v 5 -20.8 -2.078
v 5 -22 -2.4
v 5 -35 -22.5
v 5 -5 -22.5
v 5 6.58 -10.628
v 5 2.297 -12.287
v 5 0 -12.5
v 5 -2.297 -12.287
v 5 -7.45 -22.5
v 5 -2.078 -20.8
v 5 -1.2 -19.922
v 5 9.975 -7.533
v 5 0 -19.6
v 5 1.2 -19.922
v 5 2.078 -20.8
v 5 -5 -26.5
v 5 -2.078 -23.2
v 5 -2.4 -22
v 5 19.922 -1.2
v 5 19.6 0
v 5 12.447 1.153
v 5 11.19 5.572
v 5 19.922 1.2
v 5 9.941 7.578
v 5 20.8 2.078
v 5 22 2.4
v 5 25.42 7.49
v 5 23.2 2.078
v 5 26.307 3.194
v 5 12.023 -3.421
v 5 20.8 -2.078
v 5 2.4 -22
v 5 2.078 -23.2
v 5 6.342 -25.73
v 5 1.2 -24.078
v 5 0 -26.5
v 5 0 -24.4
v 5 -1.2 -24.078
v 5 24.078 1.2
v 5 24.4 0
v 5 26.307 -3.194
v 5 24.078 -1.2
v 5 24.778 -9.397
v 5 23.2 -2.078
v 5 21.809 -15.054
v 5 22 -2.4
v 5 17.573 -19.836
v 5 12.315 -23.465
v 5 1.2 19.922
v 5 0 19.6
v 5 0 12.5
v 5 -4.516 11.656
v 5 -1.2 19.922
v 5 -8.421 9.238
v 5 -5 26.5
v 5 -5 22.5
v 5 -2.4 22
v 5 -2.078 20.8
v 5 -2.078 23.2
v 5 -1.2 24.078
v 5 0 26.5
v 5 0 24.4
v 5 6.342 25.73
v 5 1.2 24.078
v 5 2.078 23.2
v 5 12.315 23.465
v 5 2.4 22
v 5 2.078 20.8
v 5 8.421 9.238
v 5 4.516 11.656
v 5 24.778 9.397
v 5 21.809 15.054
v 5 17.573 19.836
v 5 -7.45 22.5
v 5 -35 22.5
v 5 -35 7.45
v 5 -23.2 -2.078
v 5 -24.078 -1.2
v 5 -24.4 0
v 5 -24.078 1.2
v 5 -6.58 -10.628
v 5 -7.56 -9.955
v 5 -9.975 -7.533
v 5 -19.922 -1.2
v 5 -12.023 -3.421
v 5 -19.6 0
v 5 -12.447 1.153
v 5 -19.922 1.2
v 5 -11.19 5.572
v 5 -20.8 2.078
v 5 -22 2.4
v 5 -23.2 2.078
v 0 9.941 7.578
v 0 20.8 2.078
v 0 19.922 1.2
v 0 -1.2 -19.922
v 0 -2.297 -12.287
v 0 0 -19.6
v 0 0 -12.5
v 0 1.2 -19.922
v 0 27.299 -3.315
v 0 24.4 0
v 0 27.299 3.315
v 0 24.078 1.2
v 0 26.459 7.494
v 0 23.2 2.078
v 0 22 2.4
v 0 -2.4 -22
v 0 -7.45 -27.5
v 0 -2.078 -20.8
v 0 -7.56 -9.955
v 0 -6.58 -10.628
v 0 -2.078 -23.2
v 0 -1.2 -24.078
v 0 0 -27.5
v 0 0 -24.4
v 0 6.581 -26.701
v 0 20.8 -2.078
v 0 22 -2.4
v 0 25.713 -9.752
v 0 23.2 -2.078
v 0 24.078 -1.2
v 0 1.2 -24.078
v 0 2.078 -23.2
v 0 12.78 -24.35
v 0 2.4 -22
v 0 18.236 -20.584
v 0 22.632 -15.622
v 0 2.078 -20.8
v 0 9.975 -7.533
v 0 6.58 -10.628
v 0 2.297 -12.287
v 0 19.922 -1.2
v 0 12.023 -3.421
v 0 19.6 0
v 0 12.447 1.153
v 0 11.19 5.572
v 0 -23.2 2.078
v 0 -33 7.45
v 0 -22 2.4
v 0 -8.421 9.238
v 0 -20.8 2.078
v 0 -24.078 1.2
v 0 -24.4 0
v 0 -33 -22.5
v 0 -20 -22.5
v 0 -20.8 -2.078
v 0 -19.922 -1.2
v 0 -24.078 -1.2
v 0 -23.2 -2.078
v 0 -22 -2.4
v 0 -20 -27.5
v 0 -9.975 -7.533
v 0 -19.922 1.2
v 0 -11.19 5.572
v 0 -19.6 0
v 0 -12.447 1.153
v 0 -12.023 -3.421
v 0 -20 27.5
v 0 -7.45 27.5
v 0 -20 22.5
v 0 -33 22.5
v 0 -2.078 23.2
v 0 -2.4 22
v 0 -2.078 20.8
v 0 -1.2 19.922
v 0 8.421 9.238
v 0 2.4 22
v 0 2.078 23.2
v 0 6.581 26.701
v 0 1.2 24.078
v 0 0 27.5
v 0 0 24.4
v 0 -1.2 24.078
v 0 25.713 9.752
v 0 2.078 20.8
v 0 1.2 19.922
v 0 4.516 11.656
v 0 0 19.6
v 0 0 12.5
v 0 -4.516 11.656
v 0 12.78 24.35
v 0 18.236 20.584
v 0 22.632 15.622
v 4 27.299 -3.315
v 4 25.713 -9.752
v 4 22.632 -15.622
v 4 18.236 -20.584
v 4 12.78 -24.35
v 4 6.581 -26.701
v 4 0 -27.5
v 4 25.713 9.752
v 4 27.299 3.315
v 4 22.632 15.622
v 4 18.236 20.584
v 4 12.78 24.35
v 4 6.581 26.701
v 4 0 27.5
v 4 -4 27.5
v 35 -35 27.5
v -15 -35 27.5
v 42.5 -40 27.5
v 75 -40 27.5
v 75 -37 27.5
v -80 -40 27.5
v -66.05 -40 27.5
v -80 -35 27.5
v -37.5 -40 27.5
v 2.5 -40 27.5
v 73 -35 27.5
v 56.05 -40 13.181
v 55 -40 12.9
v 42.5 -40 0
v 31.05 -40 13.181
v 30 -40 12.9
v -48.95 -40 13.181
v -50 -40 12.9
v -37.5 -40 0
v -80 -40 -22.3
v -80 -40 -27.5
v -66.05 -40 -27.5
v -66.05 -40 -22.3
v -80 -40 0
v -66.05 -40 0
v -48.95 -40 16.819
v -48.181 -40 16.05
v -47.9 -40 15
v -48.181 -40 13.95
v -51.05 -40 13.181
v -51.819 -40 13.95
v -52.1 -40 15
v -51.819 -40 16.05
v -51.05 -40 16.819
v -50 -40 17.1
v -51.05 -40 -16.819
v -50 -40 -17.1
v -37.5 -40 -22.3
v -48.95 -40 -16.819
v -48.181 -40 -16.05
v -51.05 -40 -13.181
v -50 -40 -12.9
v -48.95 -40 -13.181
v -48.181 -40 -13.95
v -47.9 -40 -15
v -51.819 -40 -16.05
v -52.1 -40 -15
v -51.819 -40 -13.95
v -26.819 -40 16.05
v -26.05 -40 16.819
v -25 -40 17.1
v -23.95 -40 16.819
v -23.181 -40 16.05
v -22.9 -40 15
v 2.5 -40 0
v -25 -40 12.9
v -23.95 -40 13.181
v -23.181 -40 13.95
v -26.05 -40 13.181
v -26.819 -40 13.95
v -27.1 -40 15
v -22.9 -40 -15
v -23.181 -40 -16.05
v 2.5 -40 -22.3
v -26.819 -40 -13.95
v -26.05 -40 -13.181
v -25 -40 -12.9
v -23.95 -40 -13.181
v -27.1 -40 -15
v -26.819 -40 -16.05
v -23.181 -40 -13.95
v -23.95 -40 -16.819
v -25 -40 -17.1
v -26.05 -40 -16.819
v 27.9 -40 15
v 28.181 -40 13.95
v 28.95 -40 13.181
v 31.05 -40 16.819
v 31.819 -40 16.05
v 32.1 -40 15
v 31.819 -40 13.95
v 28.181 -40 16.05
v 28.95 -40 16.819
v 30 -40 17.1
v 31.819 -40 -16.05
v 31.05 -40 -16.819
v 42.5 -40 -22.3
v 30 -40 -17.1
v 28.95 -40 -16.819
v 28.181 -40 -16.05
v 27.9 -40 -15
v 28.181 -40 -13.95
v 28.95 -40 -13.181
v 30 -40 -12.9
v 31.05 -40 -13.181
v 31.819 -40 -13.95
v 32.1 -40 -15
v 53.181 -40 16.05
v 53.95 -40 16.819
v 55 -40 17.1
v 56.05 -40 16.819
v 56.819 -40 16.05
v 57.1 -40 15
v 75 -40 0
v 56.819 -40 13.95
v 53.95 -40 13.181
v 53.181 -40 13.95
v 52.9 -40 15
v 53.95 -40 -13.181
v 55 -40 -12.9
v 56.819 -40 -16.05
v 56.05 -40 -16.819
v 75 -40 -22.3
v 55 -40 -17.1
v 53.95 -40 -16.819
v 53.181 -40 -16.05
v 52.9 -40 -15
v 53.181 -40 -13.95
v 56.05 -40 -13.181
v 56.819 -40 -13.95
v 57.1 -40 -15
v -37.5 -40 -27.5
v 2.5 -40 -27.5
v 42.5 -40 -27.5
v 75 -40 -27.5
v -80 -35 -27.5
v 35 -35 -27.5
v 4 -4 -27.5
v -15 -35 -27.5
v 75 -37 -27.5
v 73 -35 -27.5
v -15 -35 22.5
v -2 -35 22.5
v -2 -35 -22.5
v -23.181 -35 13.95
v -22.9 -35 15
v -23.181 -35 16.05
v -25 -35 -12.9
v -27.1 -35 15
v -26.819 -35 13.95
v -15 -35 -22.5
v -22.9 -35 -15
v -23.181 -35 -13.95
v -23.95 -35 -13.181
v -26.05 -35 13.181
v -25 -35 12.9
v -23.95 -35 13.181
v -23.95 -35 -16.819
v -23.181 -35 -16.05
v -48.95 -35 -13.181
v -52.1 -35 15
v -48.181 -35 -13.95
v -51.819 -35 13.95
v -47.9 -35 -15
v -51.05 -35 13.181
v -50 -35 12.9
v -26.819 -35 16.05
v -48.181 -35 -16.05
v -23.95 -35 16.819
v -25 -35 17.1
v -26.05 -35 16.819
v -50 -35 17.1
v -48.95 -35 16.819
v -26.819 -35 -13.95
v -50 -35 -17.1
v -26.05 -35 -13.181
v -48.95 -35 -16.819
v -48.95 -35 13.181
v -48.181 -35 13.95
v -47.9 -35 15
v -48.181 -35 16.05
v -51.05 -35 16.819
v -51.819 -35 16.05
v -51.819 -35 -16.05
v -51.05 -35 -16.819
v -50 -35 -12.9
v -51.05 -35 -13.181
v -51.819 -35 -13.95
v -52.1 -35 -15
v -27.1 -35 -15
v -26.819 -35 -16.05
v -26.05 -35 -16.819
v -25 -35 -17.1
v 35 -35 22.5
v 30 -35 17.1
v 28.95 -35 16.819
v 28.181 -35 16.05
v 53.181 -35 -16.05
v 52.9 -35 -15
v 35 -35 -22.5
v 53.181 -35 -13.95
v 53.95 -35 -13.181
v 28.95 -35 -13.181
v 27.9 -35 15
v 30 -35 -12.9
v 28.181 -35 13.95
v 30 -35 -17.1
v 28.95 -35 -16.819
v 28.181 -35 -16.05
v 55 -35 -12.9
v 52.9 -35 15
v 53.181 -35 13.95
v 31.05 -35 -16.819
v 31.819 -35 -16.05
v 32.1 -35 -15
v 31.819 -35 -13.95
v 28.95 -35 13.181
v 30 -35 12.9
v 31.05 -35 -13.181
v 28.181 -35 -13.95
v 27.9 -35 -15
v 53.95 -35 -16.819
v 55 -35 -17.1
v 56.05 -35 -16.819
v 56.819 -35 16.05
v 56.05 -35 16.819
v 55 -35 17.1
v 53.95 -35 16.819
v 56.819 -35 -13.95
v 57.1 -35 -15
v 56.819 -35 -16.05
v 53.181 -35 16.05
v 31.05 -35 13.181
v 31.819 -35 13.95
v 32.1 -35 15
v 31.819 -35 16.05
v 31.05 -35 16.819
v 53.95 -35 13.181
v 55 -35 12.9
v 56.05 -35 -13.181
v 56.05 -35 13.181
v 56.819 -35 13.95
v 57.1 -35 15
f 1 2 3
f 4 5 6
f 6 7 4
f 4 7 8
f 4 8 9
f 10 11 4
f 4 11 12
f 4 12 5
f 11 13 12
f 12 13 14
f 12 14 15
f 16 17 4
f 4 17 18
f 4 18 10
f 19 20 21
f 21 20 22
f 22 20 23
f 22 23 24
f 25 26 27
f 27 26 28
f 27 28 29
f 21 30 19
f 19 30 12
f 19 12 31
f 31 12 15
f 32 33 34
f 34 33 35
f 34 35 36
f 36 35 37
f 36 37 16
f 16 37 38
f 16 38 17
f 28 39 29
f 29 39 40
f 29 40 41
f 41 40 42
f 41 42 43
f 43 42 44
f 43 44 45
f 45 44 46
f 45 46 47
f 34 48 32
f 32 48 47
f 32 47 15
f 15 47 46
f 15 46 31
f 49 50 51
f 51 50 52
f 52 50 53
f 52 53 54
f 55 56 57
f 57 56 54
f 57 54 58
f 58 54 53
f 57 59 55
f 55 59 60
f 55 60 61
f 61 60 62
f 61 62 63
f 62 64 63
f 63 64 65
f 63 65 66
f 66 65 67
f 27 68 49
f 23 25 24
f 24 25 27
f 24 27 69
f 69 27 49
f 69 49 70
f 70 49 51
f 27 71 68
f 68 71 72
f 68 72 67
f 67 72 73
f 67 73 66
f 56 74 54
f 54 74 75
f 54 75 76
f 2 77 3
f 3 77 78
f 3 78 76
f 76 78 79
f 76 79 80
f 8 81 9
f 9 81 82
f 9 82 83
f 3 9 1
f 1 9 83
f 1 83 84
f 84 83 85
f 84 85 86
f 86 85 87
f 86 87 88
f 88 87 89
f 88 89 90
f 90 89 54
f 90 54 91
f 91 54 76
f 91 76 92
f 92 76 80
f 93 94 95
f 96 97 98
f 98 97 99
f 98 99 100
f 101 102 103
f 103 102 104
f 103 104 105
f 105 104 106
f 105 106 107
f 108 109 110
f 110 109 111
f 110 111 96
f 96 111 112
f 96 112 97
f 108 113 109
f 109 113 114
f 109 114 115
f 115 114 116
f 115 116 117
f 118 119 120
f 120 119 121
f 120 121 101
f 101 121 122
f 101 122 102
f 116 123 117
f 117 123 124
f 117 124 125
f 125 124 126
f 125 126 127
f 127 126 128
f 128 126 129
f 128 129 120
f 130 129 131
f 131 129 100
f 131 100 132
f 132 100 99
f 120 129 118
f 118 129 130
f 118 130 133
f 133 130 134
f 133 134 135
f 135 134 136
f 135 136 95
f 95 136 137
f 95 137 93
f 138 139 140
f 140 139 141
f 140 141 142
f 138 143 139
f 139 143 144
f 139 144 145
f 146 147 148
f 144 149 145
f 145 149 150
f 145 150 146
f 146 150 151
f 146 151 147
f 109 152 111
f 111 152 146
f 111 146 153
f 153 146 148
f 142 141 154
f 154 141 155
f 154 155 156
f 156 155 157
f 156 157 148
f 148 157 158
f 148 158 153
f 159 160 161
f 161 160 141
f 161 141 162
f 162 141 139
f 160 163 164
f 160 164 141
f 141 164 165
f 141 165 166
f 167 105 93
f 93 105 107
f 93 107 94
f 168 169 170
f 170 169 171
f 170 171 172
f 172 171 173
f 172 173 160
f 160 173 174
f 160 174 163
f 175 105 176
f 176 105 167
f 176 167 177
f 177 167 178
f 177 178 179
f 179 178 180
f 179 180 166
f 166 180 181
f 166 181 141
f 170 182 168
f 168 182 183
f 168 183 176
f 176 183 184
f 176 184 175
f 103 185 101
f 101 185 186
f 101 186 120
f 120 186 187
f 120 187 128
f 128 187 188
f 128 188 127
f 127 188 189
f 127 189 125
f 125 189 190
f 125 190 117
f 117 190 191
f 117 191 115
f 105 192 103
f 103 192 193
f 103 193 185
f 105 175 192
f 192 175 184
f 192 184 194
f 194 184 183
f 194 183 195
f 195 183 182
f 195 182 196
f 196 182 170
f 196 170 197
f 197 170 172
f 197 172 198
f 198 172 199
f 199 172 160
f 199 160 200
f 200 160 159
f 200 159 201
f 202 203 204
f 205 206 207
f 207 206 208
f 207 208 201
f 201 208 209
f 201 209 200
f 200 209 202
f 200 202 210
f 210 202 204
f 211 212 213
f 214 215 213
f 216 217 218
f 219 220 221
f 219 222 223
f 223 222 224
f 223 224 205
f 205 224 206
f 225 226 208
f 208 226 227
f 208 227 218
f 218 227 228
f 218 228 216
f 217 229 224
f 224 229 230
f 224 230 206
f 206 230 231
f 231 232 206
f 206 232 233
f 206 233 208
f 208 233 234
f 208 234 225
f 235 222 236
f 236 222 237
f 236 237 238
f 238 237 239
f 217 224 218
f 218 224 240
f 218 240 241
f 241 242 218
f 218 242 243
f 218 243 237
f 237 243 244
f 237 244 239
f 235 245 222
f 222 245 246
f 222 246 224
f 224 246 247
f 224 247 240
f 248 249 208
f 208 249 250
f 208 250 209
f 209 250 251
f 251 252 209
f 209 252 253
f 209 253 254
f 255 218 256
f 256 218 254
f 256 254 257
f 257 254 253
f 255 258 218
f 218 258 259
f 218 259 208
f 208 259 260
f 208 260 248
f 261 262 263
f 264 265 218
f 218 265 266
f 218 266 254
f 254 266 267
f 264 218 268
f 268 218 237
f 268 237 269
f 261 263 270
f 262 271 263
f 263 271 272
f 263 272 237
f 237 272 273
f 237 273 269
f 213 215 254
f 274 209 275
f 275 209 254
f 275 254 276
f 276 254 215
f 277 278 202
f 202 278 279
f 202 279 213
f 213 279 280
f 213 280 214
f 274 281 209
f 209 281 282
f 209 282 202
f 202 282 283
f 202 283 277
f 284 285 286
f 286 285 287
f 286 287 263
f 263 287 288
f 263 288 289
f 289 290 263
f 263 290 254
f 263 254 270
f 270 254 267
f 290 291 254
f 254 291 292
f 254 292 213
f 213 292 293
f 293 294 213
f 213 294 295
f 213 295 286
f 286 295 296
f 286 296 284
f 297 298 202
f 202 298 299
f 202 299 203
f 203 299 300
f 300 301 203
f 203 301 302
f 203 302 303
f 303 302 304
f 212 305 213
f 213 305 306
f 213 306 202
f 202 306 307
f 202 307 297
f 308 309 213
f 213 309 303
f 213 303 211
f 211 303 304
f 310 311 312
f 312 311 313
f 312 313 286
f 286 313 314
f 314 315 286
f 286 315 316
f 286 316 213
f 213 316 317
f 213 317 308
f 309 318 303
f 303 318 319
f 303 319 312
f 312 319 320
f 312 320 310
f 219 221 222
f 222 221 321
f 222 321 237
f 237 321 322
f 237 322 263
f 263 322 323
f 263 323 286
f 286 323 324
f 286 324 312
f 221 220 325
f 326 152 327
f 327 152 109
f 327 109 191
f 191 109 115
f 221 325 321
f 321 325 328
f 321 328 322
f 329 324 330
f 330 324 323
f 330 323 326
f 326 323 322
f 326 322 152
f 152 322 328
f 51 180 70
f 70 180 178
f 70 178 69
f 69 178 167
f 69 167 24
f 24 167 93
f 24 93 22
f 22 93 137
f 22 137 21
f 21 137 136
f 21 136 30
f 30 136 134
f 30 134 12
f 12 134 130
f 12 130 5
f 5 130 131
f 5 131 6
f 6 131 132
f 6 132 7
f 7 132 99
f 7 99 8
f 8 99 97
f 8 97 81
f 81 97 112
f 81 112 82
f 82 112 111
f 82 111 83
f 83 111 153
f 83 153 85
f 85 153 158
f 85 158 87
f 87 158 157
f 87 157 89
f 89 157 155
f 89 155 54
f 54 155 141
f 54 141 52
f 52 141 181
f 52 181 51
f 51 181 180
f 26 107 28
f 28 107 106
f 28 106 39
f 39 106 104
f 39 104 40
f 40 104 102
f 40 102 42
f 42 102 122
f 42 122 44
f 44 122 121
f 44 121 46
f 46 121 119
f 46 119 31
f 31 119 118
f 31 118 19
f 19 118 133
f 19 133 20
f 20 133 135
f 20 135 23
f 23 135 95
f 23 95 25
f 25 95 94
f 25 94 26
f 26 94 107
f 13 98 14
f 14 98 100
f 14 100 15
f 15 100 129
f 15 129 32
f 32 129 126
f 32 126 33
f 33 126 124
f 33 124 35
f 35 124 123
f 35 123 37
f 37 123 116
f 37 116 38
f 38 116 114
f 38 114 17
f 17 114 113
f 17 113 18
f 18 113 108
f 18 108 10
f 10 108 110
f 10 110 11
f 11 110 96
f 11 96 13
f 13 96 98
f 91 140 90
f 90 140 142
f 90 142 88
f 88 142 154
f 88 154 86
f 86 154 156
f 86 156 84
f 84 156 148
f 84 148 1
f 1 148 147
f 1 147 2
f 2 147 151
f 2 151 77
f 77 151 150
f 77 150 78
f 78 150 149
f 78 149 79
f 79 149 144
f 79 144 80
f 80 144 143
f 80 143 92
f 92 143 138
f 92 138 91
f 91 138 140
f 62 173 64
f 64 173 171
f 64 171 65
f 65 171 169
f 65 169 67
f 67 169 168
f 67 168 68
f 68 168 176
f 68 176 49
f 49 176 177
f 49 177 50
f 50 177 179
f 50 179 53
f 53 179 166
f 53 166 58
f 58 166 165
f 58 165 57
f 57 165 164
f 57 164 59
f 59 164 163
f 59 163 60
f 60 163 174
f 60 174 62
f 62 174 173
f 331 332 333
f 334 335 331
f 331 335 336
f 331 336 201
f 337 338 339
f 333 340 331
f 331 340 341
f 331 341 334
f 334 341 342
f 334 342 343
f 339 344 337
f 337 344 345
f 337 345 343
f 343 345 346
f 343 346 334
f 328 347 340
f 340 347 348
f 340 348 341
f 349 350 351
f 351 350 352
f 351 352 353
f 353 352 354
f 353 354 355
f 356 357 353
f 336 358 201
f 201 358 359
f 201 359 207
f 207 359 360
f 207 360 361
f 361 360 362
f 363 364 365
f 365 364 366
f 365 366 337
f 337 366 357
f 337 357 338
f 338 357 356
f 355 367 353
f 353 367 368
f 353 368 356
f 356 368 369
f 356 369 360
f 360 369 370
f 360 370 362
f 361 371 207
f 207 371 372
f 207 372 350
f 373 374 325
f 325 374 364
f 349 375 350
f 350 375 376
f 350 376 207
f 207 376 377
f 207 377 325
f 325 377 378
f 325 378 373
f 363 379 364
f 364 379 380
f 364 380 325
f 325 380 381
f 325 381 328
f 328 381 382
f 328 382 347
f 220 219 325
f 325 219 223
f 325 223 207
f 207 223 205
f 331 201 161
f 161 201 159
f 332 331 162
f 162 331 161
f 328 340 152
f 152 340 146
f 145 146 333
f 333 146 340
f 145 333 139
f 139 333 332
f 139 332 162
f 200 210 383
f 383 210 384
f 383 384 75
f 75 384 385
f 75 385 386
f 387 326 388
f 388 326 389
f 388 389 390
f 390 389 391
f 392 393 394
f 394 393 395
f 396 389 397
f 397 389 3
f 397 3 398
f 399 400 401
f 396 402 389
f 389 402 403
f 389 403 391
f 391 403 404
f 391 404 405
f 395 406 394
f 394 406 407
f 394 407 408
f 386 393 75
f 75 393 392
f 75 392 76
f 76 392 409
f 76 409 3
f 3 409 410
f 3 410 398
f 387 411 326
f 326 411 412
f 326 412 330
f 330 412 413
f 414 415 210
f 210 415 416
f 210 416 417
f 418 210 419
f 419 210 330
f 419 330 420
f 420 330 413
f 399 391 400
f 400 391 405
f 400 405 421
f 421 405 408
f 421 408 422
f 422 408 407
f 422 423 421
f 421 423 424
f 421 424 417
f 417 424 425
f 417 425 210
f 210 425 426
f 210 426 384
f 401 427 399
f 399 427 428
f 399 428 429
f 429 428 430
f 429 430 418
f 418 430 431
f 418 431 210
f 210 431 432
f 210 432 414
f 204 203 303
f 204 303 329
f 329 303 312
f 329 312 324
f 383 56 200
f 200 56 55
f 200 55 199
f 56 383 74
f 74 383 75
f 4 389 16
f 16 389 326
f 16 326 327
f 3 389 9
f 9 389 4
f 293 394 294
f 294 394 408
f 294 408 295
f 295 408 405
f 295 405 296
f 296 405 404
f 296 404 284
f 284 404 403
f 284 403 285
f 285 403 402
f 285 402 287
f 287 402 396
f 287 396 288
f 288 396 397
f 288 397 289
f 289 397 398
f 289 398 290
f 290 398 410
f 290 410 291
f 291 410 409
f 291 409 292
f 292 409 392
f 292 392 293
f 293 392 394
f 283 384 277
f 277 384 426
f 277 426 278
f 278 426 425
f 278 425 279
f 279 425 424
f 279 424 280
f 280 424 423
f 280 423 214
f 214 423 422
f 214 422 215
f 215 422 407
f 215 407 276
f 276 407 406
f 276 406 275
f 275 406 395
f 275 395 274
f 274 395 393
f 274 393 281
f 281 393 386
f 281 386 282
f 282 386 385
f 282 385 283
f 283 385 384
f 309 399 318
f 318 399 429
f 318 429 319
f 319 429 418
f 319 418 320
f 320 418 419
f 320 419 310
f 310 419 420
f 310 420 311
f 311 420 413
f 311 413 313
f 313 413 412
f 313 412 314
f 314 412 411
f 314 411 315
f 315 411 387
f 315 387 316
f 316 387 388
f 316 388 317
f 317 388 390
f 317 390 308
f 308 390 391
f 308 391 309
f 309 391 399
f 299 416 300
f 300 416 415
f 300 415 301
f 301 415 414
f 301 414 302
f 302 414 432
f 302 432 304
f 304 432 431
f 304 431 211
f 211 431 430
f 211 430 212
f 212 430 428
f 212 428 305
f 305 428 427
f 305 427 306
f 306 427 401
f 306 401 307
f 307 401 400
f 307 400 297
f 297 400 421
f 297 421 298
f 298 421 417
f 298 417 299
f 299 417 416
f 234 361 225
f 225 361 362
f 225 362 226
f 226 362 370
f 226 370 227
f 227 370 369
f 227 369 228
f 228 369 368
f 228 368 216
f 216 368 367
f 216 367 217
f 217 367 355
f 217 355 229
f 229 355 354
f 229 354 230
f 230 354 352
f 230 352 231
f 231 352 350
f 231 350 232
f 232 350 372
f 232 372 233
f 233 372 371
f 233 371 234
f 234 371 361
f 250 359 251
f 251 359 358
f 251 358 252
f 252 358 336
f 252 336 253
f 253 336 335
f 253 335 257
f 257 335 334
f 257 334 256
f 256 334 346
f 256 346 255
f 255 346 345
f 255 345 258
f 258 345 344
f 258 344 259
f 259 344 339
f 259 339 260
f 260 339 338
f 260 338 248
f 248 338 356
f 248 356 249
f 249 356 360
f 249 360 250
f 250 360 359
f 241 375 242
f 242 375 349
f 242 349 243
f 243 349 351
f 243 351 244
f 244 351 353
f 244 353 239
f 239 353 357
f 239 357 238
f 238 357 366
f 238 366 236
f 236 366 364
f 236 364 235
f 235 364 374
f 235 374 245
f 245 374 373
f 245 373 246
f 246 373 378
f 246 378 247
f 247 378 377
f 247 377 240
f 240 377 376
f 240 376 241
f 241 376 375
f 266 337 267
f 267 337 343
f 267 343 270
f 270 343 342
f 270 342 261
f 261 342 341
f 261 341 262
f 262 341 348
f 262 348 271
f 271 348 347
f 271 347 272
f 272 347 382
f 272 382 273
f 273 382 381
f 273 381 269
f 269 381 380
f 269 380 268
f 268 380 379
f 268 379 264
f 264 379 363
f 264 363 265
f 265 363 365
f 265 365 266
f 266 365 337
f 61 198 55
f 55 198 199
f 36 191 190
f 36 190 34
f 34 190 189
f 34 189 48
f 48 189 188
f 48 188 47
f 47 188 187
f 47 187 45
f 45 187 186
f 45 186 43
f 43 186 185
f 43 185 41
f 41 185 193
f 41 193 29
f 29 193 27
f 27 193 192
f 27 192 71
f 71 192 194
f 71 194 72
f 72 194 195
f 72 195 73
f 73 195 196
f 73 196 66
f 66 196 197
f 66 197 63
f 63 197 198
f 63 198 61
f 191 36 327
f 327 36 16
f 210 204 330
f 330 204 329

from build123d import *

# Parameters (mm, degrees)
SKETCH_1_R          = 12.5
SKETCH_1_R_2        = 2.4
EXTRUDE_1_DEPTH     = 5
SKETCH_2_W          = 55
SKETCH_2_H          = 5
EXTRUDE_2_DEPTH     = 80
RIB_1_REACH         = 105.712
SKETCH_3_WALL_W     = 230.637888562
SKETCH_3_WALL_H     = 5
CHAMFER_2_SIZE      = 2
SKETCH_4_W          = 55
SKETCH_4_H          = 5
EXTRUDE_3_DEPTH     = 70
RIB_6_REACH         = 105.712
SKETCH_5_WALL_W     = 251.851091998
SKETCH_5_WALL_H     = 5
CUT_EXTRUDE_1_REACH = 107.178
SKETCH_6_R          = 2.1
CHAMFER_3_SIZE      = 1
CHAMFER_4_SIZE      = 2


with BuildPart() as part:
    # 草图1 → 凸台-拉伸1 (new body)
    with BuildSketch(Plane(origin=(0, 0, 0), x_dir=(0, 0, -1), z_dir=(1, 0, 0))):
        with BuildLine():
            Line((-27.5, 0), (-27.5, -40))
            Line((-27.5, -40), (27.5, -40))
            Line((27.5, -40), (27.5, 0))
            ThreePointArc((27.5, 0), (0, 27.5), (-27.5, 0))
        make_face()
        Circle(SKETCH_1_R, mode=Mode.SUBTRACT)
        with Locations((0, 22)):
            Circle(SKETCH_1_R_2, mode=Mode.SUBTRACT)
        with Locations((22, 0)):
            Circle(SKETCH_1_R_2, mode=Mode.SUBTRACT)
        with Locations((0, -22)):
            Circle(SKETCH_1_R_2, mode=Mode.SUBTRACT)
        with Locations((-22, 0)):
            Circle(SKETCH_1_R_2, mode=Mode.SUBTRACT)
    extrude(amount=EXTRUDE_1_DEPTH)

    # 草图2 → 凸台-拉伸2 (add)
    with BuildSketch(Plane.ZY):
        with Locations((0, -37.5)):
            Rectangle(SKETCH_2_W, SKETCH_2_H)
    extrude(amount=EXTRUDE_2_DEPTH)

    # 草图3 wall → 筋1 (add, up to next)
    with BuildSketch(Plane(origin=(-7.5, -27.5, 25), x_dir=(0.707106781187, 0.707106781187, 0), z_dir=(-0.707106781187, 0.707106781187, 0)), mode=Mode.PRIVATE) as rib_1_sk1:
        Rectangle(SKETCH_3_WALL_W, SKETCH_3_WALL_H)
    rib_1_tool1 = extrude(rib_1_sk1.sketch, amount=-RIB_1_REACH, mode=Mode.PRIVATE) - part.part
    rib_1 = rib_1_tool1.solids().sort_by_distance((-7.5, -27.5, 25))[0]
    add(rib_1)

    # 镜向1: 筋1 across plane
    add(rib_1.mirror(Plane.XY))

    # 倒角2
    chamfer_2_edges = [part.edges().sort_by_distance(p)[0] for p in [
        (0, -35, 0),
    ]]
    chamfer(chamfer_2_edges, length=CHAMFER_2_SIZE)

    # 草图4 → 凸台-拉伸3 (add)
    with BuildSketch(Plane(origin=(5, 0, 0), x_dir=(0, 0, -1), z_dir=(1, 0, 0))):
        with Locations((0, -37.5)):
            Rectangle(SKETCH_4_W, SKETCH_4_H)
    extrude(amount=EXTRUDE_3_DEPTH)

    # 草图5 wall → 筋6 (add, up to next)
    with BuildSketch(Plane(origin=(20, -20, 25), x_dir=(-0.707106781187, 0.707106781187, 0), z_dir=(-0.707106781187, -0.707106781187, 0)), mode=Mode.PRIVATE) as rib_6_sk1:
        Rectangle(SKETCH_5_WALL_W, SKETCH_5_WALL_H)
    rib_6_tool1 = extrude(rib_6_sk1.sketch, amount=RIB_6_REACH, mode=Mode.PRIVATE) - part.part
    rib_6 = rib_6_tool1.solids().sort_by_distance((20, -20, 25))[0]
    add(rib_6)

    # 镜向2: 筋6 across plane
    add(rib_6.mirror(Plane.XY))

    # 草图6 → 切除-拉伸1 (cut, up to next)
    with BuildSketch(Plane(origin=(0, -35, 0), x_dir=(1, 0, 0), z_dir=(0, 1, 0)), mode=Mode.PRIVATE) as cut_extrude_1_sk1:
        with Locations(Location((30, 15, 0), (0, 0, 270))):
            Circle(SKETCH_6_R)
    cut_extrude_1_tool1 = extrude(cut_extrude_1_sk1.sketch, amount=-CUT_EXTRUDE_1_REACH, mode=Mode.PRIVATE) & part.part
    # 草图6 → 切除-拉伸1 (cut, up to next)
    with BuildSketch(Plane(origin=(0, -35, 0), x_dir=(1, 0, 0), z_dir=(0, 1, 0)), mode=Mode.PRIVATE) as cut_extrude_1_sk2:
        with Locations(Location((55, 15, 0), (0, 0, 270))):
            Circle(SKETCH_6_R)
    cut_extrude_1_tool2 = extrude(cut_extrude_1_sk2.sketch, amount=-CUT_EXTRUDE_1_REACH, mode=Mode.PRIVATE) & part.part
    # 草图6 → 切除-拉伸1 (cut, up to next)
    with BuildSketch(Plane(origin=(0, -35, 0), x_dir=(1, 0, 0), z_dir=(0, 1, 0)), mode=Mode.PRIVATE) as cut_extrude_1_sk3:
        with Locations(Location((-50, 15, 0), (0, 0, 270))):
            Circle(SKETCH_6_R)
    cut_extrude_1_tool3 = extrude(cut_extrude_1_sk3.sketch, amount=-CUT_EXTRUDE_1_REACH, mode=Mode.PRIVATE) & part.part
    # 草图6 → 切除-拉伸1 (cut, up to next)
    with BuildSketch(Plane(origin=(0, -35, 0), x_dir=(1, 0, 0), z_dir=(0, 1, 0)), mode=Mode.PRIVATE) as cut_extrude_1_sk4:
        with Locations(Location((-25, 15, 0), (0, 0, 270))):
            Circle(SKETCH_6_R)
    cut_extrude_1_tool4 = extrude(cut_extrude_1_sk4.sketch, amount=-CUT_EXTRUDE_1_REACH, mode=Mode.PRIVATE) & part.part
    # 草图6 → 切除-拉伸1 (cut, up to next)
    with BuildSketch(Plane(origin=(0, -35, 0), x_dir=(1, 0, 0), z_dir=(0, 1, 0)), mode=Mode.PRIVATE) as cut_extrude_1_sk5:
        with Locations(Location((55, -15, 0), (0, 0, 270))):
            Circle(SKETCH_6_R)
    cut_extrude_1_tool5 = extrude(cut_extrude_1_sk5.sketch, amount=-CUT_EXTRUDE_1_REACH, mode=Mode.PRIVATE) & part.part
    # 草图6 → 切除-拉伸1 (cut, up to next)
    with BuildSketch(Plane(origin=(0, -35, 0), x_dir=(1, 0, 0), z_dir=(0, 1, 0)), mode=Mode.PRIVATE) as cut_extrude_1_sk6:
        with Locations(Location((30, -15, 0), (0, 0, 270))):
            Circle(SKETCH_6_R)
    cut_extrude_1_tool6 = extrude(cut_extrude_1_sk6.sketch, amount=-CUT_EXTRUDE_1_REACH, mode=Mode.PRIVATE) & part.part
    # 草图6 → 切除-拉伸1 (cut, up to next)
    with BuildSketch(Plane(origin=(0, -35, 0), x_dir=(1, 0, 0), z_dir=(0, 1, 0)), mode=Mode.PRIVATE) as cut_extrude_1_sk7:
        with Locations(Location((-25, -15, 0), (0, 0, 270))):
            Circle(SKETCH_6_R)
    cut_extrude_1_tool7 = extrude(cut_extrude_1_sk7.sketch, amount=-CUT_EXTRUDE_1_REACH, mode=Mode.PRIVATE) & part.part
    # 草图6 → 切除-拉伸1 (cut, up to next)
    with BuildSketch(Plane(origin=(0, -35, 0), x_dir=(1, 0, 0), z_dir=(0, 1, 0)), mode=Mode.PRIVATE) as cut_extrude_1_sk8:
        with Locations(Location((-50, -15, 0), (0, 0, 270))):
            Circle(SKETCH_6_R)
    cut_extrude_1_tool8 = extrude(cut_extrude_1_sk8.sketch, amount=-CUT_EXTRUDE_1_REACH, mode=Mode.PRIVATE) & part.part
    add(cut_extrude_1_tool1.solids().sort_by_distance((30, -35, -15))[0], mode=Mode.SUBTRACT)
    add(cut_extrude_1_tool2.solids().sort_by_distance((55, -35, -15))[0], mode=Mode.SUBTRACT)
    add(cut_extrude_1_tool3.solids().sort_by_distance((-50, -35, -15))[0], mode=Mode.SUBTRACT)
    add(cut_extrude_1_tool4.solids().sort_by_distance((-25, -35, -15))[0], mode=Mode.SUBTRACT)
    add(cut_extrude_1_tool5.solids().sort_by_distance((55, -35, 15))[0], mode=Mode.SUBTRACT)
    add(cut_extrude_1_tool6.solids().sort_by_distance((30, -35, 15))[0], mode=Mode.SUBTRACT)
    add(cut_extrude_1_tool7.solids().sort_by_distance((-25, -35, 15))[0], mode=Mode.SUBTRACT)
    add(cut_extrude_1_tool8.solids().sort_by_distance((-50, -35, 15))[0], mode=Mode.SUBTRACT)

    # 倒角3
    chamfer_3_edges = [part.edges().sort_by_distance(p)[0] for p in [
        (5, -2.5, -27.5),
        (5, 27.5, 0),
        (5, -2.5, 27.5),
    ]]
    chamfer(chamfer_3_edges, length=CHAMFER_3_SIZE)

    # 倒角4
    chamfer_4_edges = [part.edges().sort_by_distance(p)[0] for p in [
        (75, -35, 0),
    ]]
    chamfer(chamfer_4_edges, length=CHAMFER_4_SIZE)


solid = part.part
